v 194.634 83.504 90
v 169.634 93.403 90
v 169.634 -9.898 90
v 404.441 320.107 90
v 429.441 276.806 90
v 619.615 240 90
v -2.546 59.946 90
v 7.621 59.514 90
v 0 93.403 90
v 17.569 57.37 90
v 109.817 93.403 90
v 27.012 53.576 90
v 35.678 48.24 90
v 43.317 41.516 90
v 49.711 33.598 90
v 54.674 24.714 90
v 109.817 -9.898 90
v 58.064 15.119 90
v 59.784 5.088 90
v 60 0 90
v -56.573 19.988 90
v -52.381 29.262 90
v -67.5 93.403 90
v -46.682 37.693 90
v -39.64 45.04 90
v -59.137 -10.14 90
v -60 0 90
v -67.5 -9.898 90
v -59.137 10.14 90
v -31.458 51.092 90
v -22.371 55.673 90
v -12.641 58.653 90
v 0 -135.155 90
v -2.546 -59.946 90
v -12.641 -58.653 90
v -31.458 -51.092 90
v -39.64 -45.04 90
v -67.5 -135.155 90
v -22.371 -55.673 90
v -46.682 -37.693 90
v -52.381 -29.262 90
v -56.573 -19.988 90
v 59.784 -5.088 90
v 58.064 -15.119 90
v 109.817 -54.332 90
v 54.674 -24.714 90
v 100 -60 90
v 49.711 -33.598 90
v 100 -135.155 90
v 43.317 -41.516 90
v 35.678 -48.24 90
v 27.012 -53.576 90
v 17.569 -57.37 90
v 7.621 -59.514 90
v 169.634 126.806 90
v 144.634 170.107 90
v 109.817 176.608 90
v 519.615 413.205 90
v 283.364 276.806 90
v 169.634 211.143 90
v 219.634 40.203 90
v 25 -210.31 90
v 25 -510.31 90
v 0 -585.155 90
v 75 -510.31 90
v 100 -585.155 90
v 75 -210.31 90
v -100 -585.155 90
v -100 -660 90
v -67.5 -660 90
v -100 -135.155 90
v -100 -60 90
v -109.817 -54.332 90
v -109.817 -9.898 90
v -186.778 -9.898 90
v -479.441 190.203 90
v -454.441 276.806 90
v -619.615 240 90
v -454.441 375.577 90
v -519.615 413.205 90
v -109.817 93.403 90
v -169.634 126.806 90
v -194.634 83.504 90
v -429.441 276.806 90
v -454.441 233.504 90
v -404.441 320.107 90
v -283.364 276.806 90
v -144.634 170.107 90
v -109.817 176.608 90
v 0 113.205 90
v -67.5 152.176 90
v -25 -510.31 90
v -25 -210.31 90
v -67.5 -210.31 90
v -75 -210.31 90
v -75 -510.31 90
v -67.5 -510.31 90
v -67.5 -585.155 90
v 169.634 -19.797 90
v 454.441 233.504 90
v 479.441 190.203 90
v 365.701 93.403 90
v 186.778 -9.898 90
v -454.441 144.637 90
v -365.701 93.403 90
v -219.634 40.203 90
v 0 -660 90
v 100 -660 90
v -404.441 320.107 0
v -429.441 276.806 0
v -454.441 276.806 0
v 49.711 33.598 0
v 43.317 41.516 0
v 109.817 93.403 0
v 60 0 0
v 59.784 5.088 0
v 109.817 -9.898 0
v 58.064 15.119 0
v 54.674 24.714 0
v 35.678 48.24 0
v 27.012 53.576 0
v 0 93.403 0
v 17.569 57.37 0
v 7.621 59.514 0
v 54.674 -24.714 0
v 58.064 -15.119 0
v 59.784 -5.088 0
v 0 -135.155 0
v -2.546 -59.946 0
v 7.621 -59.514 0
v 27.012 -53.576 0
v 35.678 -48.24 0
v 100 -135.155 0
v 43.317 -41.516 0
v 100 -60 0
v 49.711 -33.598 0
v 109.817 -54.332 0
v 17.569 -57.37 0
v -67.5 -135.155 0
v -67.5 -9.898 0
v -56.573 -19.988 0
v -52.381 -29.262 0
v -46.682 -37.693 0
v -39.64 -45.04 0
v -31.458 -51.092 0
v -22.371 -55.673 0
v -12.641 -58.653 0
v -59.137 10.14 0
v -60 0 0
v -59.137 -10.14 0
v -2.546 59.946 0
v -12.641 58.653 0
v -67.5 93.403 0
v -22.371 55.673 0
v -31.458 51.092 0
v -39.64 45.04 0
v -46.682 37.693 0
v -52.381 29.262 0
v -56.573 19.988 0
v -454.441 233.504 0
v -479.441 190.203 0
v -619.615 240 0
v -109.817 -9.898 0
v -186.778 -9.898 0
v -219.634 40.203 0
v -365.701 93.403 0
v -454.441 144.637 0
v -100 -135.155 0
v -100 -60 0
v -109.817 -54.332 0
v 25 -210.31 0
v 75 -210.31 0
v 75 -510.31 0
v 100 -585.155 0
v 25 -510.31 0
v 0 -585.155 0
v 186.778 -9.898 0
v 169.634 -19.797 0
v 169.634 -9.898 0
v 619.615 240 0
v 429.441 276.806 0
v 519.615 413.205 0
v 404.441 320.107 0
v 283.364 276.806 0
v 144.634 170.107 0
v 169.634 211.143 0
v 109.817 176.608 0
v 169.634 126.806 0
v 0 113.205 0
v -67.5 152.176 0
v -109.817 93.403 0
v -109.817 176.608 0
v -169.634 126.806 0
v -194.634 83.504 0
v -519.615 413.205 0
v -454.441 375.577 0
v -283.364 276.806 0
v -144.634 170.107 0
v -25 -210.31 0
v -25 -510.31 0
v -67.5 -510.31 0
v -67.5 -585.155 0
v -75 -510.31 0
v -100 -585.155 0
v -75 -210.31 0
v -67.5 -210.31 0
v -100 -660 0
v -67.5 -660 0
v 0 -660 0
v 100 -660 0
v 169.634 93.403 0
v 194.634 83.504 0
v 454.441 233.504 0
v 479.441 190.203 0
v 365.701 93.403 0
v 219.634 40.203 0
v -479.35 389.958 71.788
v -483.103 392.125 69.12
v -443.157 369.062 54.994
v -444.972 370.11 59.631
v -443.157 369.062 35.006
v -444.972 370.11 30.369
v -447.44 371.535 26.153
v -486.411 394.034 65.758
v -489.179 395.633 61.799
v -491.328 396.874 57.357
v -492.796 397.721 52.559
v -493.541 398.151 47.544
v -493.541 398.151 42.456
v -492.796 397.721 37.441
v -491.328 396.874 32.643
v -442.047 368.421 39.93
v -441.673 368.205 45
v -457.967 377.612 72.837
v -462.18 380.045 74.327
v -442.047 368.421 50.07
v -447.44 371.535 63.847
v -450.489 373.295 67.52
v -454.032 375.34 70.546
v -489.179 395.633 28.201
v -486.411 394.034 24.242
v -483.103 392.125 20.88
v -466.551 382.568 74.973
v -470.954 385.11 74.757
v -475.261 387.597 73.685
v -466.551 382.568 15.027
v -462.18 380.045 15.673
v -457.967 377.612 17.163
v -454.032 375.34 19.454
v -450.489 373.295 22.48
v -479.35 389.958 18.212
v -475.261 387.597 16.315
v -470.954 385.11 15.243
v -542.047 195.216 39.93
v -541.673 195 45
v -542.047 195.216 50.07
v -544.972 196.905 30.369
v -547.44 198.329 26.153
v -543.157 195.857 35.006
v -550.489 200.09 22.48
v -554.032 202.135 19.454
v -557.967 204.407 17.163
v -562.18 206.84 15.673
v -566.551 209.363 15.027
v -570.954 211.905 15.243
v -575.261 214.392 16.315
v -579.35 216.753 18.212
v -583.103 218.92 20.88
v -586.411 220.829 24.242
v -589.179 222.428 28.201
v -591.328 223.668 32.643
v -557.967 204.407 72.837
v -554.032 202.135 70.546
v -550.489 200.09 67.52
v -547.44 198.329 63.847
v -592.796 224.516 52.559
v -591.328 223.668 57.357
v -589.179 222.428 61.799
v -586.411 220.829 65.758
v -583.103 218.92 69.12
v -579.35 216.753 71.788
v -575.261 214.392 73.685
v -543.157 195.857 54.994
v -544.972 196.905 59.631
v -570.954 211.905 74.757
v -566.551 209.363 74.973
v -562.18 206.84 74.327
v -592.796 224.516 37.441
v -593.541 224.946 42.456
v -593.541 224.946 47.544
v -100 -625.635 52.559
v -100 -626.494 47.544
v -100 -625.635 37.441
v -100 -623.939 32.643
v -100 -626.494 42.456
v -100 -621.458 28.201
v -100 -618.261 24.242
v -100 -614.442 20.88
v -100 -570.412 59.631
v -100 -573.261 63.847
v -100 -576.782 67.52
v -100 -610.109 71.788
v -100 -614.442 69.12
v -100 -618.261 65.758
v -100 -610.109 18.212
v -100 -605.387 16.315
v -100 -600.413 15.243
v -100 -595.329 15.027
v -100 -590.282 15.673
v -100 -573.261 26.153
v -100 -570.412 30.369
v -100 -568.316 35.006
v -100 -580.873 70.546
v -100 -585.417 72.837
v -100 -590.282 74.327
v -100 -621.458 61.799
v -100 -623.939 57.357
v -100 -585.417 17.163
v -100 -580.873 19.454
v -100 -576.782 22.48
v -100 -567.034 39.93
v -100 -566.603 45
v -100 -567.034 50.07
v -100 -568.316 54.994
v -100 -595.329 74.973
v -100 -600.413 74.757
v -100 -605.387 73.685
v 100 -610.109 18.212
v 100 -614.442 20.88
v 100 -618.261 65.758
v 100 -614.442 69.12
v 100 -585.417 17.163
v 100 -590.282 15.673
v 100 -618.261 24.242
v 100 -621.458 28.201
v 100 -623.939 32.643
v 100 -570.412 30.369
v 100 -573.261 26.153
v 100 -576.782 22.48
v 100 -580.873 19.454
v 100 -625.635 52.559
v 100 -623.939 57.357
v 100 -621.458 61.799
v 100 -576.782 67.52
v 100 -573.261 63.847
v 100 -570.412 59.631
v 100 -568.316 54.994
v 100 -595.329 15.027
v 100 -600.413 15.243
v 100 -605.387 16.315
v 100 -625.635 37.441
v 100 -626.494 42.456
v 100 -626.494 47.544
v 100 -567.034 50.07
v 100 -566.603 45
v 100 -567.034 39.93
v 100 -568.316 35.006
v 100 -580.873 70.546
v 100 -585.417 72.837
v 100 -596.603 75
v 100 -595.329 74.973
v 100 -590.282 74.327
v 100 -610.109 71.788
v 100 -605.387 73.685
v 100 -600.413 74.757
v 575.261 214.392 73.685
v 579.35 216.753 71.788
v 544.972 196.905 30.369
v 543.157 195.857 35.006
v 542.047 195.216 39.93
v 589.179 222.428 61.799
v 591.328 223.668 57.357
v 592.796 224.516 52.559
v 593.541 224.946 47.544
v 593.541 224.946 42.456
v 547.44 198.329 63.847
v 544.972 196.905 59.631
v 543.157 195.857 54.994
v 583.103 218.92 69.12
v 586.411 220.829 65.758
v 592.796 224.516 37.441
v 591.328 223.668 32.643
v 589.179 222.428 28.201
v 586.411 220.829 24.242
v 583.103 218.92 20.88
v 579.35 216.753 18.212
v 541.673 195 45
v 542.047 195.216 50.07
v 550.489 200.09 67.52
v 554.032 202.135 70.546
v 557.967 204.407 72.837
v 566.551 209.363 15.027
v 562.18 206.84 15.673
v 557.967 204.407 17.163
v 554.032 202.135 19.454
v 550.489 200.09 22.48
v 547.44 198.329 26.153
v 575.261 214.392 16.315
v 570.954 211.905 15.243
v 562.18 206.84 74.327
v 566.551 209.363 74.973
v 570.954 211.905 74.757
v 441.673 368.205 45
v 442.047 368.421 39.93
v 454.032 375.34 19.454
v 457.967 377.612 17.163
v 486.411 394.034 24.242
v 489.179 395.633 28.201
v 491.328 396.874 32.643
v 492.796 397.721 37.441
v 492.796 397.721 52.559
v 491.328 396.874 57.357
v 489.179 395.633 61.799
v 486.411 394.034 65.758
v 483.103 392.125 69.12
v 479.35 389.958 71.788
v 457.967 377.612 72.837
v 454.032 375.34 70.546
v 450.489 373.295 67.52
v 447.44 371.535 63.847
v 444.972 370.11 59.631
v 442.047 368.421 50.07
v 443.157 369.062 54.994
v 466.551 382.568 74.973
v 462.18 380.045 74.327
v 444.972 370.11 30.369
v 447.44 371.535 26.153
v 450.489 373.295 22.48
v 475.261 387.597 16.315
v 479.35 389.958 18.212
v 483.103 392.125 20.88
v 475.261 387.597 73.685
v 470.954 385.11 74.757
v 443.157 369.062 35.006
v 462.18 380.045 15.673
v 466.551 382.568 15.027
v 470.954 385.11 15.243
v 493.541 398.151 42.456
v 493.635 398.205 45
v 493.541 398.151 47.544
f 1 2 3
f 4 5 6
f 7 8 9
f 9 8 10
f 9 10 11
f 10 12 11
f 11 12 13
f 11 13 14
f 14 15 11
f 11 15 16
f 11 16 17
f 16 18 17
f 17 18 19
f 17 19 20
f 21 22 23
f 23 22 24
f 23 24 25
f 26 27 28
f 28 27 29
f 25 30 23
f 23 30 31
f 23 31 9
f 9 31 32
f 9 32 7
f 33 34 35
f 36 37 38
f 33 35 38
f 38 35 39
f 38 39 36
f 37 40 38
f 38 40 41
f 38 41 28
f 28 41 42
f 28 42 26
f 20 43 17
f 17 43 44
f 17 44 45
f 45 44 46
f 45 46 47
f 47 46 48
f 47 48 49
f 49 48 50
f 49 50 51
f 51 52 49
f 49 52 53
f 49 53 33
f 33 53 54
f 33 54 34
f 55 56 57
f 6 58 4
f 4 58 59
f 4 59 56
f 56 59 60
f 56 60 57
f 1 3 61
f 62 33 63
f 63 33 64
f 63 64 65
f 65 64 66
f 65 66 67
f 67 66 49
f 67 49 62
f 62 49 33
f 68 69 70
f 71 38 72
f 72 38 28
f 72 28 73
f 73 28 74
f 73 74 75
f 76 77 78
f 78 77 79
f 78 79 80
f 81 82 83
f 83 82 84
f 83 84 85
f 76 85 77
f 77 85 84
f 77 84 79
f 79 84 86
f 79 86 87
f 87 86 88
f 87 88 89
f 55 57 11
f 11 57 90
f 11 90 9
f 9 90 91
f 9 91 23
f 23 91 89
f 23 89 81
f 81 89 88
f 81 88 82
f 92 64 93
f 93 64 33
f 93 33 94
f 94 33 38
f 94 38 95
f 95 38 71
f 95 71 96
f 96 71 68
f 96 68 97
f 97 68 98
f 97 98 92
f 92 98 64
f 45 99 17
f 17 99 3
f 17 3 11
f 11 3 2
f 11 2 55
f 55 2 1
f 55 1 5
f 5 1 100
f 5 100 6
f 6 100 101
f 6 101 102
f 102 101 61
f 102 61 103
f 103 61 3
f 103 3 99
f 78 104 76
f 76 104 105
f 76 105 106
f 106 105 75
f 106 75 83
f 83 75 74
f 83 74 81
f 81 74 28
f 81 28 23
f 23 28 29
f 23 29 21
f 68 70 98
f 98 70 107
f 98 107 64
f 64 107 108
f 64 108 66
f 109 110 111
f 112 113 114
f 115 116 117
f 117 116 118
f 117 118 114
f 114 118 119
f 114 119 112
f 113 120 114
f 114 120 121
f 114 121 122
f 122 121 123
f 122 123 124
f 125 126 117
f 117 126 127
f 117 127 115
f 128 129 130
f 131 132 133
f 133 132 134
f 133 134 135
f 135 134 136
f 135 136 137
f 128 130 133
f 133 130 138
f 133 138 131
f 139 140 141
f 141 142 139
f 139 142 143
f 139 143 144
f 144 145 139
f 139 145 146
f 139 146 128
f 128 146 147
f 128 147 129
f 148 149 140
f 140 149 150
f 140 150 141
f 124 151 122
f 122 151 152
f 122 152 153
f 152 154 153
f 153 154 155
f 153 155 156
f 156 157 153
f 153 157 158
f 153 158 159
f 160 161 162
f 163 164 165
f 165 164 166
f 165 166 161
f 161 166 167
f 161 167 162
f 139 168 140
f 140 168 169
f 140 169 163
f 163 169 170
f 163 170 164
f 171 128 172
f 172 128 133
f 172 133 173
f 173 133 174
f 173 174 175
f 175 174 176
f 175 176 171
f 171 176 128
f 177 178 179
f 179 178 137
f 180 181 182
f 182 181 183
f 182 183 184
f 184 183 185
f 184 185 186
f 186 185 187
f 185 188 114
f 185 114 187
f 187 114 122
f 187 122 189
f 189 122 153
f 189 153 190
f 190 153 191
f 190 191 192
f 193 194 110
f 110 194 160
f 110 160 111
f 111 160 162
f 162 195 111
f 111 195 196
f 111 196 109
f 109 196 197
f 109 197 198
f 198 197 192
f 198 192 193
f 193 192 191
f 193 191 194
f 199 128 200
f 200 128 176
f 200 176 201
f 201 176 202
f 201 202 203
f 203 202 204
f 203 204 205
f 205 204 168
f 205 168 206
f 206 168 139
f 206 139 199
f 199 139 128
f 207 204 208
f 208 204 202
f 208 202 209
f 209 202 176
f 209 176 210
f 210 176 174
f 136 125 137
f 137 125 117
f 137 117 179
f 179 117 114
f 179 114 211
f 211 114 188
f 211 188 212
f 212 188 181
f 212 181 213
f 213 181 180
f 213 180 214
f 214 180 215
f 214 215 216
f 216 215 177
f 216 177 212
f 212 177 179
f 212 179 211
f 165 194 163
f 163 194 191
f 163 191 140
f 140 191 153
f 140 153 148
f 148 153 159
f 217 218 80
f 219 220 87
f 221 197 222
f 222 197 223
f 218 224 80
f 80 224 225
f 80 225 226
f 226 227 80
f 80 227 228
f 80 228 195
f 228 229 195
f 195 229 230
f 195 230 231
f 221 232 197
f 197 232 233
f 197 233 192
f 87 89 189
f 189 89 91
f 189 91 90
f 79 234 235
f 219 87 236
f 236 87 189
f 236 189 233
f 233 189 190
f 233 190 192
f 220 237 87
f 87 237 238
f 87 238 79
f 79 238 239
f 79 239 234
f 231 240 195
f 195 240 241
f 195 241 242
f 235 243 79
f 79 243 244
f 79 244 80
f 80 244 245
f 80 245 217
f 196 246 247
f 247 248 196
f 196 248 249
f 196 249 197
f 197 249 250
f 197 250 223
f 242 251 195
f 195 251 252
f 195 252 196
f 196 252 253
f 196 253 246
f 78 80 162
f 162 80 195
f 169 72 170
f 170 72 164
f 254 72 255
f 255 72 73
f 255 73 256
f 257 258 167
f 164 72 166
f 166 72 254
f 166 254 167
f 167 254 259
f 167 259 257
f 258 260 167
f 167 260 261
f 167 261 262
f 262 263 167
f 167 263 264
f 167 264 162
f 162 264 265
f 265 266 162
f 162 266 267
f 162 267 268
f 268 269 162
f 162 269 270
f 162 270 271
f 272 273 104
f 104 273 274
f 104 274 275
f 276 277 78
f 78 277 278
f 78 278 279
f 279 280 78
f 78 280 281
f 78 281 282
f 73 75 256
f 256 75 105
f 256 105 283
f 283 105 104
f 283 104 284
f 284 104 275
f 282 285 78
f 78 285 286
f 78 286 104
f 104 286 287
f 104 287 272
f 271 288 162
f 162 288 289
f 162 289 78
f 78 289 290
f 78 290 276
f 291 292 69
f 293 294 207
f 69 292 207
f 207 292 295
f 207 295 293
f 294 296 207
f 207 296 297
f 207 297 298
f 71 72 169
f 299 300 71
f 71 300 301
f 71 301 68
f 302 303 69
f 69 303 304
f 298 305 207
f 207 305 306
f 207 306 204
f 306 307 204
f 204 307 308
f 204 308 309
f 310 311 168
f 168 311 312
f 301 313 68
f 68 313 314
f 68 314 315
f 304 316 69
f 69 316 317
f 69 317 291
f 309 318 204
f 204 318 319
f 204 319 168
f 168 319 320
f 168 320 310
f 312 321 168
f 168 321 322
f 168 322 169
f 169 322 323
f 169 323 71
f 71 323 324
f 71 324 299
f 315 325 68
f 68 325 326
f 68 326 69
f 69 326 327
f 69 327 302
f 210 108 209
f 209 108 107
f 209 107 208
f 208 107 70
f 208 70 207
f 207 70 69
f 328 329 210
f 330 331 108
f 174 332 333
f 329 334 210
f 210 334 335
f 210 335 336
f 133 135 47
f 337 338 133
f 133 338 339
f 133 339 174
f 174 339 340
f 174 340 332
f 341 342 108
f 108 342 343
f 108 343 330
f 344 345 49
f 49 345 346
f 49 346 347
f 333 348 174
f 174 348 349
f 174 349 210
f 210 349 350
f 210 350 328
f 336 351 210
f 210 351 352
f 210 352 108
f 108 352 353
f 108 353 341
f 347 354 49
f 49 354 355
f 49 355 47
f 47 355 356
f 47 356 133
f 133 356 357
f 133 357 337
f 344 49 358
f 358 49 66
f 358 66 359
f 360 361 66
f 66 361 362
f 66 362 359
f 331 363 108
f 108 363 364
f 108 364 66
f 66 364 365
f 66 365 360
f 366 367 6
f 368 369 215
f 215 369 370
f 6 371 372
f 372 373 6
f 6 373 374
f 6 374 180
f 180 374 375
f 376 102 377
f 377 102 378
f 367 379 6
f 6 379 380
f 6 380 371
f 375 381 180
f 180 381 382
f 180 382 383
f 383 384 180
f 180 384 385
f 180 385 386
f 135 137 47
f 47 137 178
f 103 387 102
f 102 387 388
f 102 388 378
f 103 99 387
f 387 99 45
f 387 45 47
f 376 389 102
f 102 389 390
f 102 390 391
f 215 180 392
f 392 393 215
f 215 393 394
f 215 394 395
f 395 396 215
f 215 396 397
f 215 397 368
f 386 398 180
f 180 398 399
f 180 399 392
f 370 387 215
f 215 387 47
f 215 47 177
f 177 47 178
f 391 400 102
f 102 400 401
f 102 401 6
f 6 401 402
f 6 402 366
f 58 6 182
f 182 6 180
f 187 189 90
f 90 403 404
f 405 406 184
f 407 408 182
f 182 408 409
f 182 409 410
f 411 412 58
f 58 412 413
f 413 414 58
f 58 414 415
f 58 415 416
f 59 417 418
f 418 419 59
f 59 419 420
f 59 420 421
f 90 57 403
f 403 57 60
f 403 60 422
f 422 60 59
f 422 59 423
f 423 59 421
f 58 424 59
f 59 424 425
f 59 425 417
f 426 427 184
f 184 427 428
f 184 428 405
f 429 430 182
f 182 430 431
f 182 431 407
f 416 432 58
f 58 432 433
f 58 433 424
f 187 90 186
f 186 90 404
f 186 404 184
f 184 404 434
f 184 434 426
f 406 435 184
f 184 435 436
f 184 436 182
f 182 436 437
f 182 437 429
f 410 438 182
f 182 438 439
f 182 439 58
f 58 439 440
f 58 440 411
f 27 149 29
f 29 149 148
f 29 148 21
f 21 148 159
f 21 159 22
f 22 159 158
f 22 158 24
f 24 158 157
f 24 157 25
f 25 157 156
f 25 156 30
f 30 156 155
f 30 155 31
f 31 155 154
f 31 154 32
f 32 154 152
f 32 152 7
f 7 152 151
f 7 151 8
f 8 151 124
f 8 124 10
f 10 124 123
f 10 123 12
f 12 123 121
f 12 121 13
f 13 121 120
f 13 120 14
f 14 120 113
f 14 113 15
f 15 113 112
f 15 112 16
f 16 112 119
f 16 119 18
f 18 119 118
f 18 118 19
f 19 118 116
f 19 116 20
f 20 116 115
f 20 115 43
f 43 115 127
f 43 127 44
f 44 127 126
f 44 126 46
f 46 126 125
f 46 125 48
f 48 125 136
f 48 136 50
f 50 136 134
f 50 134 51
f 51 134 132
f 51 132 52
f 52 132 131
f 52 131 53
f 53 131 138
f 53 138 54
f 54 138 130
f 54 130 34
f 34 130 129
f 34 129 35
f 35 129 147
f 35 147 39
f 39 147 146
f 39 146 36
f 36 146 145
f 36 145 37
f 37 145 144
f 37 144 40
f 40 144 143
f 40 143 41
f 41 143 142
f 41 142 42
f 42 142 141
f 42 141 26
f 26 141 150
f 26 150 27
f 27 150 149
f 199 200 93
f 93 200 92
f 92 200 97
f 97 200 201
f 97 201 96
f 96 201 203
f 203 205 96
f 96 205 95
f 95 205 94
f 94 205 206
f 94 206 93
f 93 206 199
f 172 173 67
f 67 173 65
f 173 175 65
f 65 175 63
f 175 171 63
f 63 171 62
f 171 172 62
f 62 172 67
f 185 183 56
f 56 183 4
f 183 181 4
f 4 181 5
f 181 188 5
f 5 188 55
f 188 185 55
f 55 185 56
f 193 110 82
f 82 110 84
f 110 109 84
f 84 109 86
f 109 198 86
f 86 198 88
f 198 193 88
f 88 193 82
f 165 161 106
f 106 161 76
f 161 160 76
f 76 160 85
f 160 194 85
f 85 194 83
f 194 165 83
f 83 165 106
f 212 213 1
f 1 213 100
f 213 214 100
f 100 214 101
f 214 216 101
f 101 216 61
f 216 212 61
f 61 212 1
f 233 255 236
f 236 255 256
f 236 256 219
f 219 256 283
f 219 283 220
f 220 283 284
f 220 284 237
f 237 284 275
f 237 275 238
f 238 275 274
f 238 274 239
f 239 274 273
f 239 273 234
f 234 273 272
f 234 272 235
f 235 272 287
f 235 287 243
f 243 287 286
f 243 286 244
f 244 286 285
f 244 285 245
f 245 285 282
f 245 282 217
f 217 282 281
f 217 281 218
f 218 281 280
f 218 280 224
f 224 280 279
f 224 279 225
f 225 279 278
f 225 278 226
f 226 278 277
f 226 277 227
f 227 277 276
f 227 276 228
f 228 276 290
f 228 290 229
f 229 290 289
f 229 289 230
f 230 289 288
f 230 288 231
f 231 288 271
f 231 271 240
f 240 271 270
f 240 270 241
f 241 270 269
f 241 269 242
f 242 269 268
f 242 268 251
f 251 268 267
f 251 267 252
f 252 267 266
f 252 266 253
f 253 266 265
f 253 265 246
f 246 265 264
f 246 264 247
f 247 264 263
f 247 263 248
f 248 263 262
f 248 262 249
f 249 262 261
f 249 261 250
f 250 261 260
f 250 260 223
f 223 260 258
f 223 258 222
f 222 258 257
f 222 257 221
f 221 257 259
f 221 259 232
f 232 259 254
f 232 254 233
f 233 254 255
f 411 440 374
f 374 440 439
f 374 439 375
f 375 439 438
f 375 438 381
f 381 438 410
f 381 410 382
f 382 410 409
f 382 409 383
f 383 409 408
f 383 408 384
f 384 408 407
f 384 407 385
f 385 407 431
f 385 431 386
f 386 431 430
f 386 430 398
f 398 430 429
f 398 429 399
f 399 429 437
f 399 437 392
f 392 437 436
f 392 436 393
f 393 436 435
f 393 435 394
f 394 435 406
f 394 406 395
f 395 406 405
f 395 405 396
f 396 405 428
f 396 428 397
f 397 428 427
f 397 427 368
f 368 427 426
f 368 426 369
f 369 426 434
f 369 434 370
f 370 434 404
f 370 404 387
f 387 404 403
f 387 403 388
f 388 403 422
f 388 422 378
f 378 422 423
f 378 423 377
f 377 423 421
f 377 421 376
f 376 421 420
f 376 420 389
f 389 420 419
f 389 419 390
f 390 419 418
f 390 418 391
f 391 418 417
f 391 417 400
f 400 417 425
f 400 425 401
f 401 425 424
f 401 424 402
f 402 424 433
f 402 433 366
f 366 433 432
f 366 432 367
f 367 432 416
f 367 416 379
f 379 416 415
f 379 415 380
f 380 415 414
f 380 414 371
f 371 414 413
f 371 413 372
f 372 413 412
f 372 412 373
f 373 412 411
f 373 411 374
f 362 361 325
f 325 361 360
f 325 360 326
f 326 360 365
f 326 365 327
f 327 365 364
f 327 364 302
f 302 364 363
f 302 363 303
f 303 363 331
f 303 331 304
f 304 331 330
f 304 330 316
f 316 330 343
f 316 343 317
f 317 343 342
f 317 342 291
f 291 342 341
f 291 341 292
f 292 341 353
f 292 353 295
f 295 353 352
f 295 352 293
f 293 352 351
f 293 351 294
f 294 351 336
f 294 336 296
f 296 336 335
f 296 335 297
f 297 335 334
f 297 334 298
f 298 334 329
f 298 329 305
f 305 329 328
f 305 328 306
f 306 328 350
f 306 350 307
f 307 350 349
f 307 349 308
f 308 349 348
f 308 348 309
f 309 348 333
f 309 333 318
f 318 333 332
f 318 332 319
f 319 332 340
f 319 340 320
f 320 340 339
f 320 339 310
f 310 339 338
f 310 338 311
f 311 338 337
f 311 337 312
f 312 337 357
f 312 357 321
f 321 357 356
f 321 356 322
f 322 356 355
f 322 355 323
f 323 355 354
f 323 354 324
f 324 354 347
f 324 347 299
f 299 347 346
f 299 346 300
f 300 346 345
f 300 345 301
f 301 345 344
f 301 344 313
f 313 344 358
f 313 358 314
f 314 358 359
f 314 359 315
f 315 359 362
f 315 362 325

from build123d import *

# Parameters (mm, degrees)
SKETCH2_R           = 60
BOSS_EXTRUDE1_DEPTH = 90
SKETCH4_W           = 50
SKETCH4_H           = 300
CUT_EXTRUDE1_DEPTH  = 90
CIRPATTERN1_COUNT   = 3
SKETCH7_R           = 30
CUT_EXTRUDE2_DEPTH  = 770.615242271
CIRPATTERN2_COUNT   = 3


with BuildPart() as part:
    # Sketch2 → Boss-Extrude1 (new body)
    with BuildSketch(Plane.XY):
        Polygon((-100, -60), (-100, -660), (100, -660), (100, -60), (619.615242271, 240), (519.615242271, 413.205080757), (0, 113.205080757), (-519.615242271, 413.205080757), (-619.615242271, 240), align=None)
        Circle(SKETCH2_R, mode=Mode.SUBTRACT)
    extrude(amount=BOSS_EXTRUDE1_DEPTH)

    # Sketch4 → Cut-Extrude1 (cut)
    with BuildSketch(Plane.XY.offset(90)):
        with Locations((-50, -360.309938914)):
            Rectangle(SKETCH4_W, SKETCH4_H)
        with Locations((50, -360.309938914)):
            Rectangle(SKETCH4_W, SKETCH4_H)
    cut_extrude1 = extrude(amount=-CUT_EXTRUDE1_DEPTH, mode=Mode.SUBTRACT)

    # CirPattern1: Cut-Extrude1 ×3 about axis
    cirpattern1_axis = Axis((0, 0, 0), (0, 0, 1))
    for i in range(1, CIRPATTERN1_COUNT):
        add(cut_extrude1.rotate(cirpattern1_axis, i * 360 / CIRPATTERN1_COUNT), mode=Mode.SUBTRACT)

    # Sketch7 → Cut-Extrude2 (cut, through all)
    with BuildSketch(Plane(origin=(-50.980762114, -88.301270189, 0), x_dir=(0.866025404, -0.5, 0), z_dir=(-0.5, -0.866025404, 0))):
        with Locations((-596.602540378, 45)):
            Circle(SKETCH7_R)
    cut_extrude2 = extrude(amount=-CUT_EXTRUDE2_DEPTH, mode=Mode.SUBTRACT)

    # CirPattern2: Cut-Extrude2 ×3 about axis
    cirpattern2_axis = Axis((0, 0, 0), (0, 0, 1))
    for i in range(1, CIRPATTERN2_COUNT):
        add(cut_extrude2.rotate(cirpattern2_axis, i * 360 / CIRPATTERN2_COUNT), mode=Mode.SUBTRACT)


solid = part.part
